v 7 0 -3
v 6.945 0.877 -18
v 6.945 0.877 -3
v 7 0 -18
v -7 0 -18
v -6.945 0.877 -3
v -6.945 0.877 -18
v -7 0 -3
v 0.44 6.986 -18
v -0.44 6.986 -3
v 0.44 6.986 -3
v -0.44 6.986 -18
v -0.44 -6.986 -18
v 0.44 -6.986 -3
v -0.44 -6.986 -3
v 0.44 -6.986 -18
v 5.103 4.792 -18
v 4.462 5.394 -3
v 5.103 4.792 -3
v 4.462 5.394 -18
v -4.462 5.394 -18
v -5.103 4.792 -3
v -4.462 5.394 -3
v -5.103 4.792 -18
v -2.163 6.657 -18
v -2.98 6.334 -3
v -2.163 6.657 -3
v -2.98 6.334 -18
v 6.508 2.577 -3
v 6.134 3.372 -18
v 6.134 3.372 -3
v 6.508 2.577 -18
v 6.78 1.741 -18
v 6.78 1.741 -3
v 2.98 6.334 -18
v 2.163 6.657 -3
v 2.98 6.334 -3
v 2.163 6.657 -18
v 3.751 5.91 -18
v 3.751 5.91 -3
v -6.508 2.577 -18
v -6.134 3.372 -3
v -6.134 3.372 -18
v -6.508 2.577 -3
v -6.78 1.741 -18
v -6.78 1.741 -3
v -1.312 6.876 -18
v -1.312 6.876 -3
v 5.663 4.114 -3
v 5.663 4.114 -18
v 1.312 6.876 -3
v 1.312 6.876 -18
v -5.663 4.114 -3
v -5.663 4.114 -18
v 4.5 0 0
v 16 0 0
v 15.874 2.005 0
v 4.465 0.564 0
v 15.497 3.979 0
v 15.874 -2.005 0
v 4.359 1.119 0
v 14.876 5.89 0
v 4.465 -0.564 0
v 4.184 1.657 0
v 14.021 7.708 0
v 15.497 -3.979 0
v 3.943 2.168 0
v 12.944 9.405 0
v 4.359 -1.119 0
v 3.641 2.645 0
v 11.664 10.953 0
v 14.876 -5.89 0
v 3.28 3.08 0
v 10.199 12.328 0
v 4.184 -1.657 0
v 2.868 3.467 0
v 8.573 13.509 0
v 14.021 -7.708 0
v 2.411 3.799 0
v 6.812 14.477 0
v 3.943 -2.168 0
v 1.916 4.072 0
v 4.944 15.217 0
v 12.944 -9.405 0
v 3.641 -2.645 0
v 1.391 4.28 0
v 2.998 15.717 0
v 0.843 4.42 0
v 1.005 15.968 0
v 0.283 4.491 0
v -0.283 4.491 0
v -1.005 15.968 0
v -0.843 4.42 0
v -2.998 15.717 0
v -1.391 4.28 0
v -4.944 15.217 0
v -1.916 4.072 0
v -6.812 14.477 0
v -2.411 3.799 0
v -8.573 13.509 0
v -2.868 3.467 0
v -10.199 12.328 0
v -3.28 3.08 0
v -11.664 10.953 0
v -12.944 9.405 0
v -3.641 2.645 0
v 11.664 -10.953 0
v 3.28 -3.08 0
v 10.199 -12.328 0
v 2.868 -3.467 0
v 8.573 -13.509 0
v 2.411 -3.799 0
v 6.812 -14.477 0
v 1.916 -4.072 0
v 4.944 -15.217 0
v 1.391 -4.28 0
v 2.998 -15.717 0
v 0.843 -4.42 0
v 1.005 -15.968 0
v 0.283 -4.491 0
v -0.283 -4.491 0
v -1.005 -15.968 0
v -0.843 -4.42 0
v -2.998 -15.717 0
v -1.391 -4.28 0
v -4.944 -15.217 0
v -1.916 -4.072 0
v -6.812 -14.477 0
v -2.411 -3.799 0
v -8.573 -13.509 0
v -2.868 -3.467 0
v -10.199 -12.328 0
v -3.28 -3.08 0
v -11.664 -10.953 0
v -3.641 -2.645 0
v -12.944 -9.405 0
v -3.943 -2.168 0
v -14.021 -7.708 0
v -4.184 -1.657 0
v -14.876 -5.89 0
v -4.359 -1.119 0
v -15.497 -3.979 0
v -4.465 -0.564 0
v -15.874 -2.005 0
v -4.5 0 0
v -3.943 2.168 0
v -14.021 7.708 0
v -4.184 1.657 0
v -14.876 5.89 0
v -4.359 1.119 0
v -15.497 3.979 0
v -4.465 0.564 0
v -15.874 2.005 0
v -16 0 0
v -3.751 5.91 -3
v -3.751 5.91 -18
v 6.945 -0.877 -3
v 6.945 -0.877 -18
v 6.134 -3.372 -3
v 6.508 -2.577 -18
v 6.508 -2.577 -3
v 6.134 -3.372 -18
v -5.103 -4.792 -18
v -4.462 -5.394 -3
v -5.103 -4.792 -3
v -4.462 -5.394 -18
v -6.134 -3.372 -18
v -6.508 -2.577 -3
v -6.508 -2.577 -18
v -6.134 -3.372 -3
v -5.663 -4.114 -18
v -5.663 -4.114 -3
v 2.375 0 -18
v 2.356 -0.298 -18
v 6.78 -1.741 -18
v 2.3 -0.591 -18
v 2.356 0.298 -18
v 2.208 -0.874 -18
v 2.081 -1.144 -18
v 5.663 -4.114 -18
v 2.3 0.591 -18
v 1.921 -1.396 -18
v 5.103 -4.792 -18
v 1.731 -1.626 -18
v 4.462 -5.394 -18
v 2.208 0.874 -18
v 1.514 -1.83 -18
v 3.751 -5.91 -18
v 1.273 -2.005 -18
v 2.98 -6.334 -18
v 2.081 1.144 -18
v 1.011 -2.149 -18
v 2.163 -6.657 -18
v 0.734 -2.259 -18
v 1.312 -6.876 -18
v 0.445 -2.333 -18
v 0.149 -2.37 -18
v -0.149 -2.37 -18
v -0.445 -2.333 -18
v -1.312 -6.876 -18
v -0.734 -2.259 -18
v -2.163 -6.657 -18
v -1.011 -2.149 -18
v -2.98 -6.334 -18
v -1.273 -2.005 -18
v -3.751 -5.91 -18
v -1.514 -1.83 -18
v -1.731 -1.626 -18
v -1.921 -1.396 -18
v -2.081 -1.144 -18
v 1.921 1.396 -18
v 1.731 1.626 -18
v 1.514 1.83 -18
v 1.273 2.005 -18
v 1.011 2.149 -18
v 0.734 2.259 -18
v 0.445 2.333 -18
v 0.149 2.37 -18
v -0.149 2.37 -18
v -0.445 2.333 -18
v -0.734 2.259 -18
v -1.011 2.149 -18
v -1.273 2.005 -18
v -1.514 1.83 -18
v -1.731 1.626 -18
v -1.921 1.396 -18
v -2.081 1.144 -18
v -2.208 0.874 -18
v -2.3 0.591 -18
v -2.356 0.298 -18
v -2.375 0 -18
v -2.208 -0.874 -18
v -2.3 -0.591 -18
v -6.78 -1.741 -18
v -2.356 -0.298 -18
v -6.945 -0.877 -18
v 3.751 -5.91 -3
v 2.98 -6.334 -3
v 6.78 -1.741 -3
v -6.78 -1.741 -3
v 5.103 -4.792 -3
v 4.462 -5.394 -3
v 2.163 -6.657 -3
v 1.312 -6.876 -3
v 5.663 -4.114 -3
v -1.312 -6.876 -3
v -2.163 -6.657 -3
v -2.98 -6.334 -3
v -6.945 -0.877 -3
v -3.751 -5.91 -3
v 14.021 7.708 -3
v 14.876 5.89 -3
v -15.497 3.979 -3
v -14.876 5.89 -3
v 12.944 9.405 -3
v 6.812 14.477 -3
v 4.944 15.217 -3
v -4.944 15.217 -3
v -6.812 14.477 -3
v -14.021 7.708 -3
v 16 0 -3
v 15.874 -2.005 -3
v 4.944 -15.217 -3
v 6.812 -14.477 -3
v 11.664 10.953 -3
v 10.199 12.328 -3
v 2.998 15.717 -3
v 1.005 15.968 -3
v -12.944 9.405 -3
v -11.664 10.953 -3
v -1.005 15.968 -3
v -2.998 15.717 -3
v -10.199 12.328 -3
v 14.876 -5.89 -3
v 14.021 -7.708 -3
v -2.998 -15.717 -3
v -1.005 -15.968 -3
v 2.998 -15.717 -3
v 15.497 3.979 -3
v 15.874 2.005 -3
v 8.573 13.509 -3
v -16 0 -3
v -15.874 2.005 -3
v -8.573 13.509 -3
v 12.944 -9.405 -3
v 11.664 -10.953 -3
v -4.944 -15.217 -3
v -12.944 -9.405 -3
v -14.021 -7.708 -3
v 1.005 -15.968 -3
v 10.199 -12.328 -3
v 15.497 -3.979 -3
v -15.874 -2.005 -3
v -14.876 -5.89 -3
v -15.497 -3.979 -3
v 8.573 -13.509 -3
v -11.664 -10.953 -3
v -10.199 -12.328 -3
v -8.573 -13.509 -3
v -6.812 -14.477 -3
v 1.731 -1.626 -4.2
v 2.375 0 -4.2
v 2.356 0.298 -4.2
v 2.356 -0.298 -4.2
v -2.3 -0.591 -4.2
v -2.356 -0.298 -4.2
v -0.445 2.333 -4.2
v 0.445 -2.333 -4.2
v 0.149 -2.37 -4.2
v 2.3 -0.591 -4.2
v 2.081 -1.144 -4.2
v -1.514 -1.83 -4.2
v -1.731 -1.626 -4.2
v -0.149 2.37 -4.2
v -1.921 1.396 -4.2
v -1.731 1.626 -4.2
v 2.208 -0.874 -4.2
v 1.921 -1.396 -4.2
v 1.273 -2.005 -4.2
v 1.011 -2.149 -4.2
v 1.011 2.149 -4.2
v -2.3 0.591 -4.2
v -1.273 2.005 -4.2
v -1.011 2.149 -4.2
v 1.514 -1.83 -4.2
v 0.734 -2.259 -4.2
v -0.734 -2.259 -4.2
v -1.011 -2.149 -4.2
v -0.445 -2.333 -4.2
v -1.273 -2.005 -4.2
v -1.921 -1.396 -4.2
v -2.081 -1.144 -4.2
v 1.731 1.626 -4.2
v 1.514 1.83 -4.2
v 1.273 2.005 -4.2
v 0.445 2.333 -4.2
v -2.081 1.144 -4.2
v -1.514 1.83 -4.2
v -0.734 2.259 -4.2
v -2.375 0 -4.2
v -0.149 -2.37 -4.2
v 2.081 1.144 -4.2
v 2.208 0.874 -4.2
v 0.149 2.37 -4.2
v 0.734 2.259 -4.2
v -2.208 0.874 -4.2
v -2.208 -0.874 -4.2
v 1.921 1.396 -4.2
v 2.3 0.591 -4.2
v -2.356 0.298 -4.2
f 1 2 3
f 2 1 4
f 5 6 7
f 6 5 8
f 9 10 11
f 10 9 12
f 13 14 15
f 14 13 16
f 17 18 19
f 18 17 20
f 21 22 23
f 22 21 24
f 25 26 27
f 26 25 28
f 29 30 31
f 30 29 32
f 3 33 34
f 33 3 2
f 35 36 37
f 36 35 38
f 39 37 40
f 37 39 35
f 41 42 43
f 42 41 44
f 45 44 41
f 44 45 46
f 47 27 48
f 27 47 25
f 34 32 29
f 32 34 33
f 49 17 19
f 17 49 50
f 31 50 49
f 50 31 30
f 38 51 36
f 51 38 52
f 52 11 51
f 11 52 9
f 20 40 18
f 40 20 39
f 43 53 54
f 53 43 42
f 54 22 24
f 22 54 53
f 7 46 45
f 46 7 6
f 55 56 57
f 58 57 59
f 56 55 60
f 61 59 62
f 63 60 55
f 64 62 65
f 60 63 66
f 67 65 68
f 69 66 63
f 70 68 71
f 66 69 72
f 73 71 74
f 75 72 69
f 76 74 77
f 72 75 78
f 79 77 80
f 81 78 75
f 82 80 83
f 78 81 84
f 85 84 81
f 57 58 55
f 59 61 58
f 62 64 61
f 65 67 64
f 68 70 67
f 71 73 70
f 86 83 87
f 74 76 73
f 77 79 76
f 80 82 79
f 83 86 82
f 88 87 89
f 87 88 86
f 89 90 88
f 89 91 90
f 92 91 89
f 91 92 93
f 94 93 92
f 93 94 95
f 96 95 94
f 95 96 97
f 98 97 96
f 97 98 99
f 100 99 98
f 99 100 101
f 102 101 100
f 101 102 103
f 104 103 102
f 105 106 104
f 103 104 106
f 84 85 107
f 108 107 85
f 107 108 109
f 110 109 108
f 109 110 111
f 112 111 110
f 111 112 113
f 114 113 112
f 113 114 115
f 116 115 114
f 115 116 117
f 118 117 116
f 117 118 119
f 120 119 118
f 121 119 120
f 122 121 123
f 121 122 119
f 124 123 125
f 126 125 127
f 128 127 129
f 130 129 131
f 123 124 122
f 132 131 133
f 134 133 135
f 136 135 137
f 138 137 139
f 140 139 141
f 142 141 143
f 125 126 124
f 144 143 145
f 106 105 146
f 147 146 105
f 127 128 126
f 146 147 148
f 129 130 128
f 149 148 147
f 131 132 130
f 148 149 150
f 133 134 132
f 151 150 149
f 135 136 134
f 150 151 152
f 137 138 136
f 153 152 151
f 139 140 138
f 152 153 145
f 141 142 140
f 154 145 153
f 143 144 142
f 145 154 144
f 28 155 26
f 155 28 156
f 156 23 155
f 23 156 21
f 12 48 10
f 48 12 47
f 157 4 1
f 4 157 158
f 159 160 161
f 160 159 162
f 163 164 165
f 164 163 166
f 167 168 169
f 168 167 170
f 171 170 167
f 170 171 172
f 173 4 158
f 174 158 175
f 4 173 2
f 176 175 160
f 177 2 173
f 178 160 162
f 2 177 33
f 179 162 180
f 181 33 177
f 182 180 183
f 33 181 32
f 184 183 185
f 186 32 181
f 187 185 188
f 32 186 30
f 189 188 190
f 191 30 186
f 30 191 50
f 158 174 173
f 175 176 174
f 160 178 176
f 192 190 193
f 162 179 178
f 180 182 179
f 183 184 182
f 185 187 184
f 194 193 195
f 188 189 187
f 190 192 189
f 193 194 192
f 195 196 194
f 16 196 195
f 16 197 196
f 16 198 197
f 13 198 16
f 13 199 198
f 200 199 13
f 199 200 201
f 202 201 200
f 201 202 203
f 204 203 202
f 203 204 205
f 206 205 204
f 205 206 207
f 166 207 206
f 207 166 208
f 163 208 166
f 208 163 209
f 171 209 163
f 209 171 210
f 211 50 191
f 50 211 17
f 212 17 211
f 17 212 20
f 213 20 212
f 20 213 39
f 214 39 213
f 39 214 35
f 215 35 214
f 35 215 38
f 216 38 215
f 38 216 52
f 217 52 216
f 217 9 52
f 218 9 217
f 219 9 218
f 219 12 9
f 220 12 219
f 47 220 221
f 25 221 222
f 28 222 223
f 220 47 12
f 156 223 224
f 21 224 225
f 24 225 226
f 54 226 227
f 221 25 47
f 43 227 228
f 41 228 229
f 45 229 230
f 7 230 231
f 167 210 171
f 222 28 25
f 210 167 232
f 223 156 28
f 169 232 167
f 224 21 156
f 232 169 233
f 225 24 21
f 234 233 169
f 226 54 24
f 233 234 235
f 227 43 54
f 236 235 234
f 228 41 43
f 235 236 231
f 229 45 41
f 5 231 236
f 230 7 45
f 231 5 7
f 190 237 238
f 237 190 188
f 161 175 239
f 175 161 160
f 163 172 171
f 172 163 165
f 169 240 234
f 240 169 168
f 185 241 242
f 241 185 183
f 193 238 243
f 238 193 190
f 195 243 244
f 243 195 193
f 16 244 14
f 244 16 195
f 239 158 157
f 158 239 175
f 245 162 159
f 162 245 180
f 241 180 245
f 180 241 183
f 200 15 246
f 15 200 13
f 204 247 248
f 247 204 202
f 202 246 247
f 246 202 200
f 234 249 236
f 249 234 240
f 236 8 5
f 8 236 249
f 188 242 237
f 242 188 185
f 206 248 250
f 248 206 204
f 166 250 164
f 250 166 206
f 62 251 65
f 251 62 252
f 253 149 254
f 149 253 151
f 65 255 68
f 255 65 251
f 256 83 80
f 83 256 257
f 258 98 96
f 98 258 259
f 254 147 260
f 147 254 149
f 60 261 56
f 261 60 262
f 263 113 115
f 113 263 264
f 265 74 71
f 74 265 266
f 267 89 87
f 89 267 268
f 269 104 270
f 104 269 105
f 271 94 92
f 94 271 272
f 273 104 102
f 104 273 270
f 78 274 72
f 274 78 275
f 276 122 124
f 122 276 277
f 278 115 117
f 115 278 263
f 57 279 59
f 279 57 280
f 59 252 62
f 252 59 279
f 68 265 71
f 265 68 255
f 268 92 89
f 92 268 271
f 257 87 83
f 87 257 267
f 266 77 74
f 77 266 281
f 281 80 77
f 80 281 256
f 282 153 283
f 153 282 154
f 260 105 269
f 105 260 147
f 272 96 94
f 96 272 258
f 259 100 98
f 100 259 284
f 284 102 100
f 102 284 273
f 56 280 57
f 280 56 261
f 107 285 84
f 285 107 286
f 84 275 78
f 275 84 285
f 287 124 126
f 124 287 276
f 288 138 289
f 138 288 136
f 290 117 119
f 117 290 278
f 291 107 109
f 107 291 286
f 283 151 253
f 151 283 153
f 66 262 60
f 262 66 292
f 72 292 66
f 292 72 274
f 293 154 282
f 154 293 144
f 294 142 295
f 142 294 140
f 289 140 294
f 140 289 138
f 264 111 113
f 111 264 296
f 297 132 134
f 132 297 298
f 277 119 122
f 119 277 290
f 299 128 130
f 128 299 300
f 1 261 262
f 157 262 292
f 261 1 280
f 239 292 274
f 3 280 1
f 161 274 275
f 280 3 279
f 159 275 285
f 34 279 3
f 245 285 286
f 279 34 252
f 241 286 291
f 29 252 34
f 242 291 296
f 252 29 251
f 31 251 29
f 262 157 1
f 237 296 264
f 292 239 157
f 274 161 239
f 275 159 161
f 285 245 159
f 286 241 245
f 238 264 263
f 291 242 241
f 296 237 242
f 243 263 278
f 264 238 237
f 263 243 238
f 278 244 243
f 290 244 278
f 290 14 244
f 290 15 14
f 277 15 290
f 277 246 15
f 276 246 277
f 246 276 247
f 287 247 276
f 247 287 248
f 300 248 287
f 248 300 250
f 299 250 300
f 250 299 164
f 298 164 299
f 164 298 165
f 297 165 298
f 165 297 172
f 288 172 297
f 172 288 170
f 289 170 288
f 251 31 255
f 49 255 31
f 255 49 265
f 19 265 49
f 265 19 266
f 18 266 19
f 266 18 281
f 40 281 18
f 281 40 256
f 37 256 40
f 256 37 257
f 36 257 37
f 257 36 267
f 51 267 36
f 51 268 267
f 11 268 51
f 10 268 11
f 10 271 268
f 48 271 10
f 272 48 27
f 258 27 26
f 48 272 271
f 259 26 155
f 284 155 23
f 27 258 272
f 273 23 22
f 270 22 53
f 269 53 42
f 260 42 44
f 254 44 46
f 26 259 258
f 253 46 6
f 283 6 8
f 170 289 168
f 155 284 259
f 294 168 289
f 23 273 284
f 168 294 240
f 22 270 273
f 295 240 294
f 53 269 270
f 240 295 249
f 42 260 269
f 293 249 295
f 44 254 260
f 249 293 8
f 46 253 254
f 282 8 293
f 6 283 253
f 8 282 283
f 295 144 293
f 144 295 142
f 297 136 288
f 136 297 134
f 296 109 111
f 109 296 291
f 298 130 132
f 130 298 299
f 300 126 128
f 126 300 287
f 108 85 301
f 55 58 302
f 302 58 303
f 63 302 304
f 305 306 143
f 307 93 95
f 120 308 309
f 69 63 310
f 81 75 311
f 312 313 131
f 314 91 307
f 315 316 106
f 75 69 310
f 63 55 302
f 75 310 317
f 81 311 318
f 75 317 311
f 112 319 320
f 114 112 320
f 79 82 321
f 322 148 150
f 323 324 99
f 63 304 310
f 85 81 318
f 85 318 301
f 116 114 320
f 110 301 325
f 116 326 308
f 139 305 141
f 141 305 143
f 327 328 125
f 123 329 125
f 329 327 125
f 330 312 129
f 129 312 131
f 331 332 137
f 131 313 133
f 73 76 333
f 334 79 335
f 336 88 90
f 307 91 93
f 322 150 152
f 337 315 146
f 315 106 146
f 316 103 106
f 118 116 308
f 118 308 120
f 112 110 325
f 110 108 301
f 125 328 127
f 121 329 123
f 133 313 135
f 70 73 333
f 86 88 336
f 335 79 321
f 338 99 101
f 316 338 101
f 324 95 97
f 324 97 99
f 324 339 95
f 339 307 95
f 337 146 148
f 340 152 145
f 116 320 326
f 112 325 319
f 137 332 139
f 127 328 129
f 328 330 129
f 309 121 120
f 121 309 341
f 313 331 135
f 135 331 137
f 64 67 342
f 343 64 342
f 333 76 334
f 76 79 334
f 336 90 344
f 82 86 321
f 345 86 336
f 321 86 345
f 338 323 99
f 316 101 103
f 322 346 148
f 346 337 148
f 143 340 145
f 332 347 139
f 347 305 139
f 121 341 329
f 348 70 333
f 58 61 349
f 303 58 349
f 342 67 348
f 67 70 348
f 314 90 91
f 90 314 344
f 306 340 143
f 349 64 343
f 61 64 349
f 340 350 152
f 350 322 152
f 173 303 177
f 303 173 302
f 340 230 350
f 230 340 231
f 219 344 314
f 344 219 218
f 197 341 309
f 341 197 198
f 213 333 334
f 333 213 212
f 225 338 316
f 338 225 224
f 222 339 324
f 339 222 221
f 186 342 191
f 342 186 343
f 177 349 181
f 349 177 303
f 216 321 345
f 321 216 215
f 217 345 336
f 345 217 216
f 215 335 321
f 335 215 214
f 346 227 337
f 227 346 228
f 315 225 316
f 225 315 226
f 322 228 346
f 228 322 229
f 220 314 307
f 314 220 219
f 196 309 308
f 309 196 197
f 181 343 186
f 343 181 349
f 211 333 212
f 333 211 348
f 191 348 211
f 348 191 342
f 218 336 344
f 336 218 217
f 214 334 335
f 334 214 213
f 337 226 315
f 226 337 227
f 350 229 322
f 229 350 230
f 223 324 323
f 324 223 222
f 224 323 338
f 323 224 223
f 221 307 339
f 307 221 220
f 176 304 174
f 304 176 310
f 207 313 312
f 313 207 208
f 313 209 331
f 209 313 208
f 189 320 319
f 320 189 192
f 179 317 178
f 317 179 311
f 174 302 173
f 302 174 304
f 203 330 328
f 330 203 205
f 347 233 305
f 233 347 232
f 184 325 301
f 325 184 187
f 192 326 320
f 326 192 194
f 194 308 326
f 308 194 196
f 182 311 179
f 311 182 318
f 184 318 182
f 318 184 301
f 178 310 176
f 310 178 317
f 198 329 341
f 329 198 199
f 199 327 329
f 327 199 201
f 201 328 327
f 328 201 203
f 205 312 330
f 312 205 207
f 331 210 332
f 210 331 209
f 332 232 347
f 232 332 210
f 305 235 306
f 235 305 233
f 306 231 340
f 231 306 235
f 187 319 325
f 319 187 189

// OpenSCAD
$fn = 50;


difference() {
	union() {
		translate(v = [0, 0, -18.0000000000]) {
			cylinder(h = 18, r = 7.0000000000);
		}
		translate(v = [0, 0, -3.0000000000]) {
			cylinder(h = 3, r = 16.0000000000);
		}
	}
	union() {
		translate(v = [0, 0, 0]) {
			rotate(a = [0, 0, 0]) {
				difference() {
					union() {
						#translate(v = [0, 0, -18.0000000000]) {
							cylinder(h = 18, r = 2.2500000000);
						}
						#translate(v = [0, 0, -4.2000000000]) {
							cylinder(h = 4.2000000000, r1 = 2.3750000000, r2 = 4.5000000000);
						}
						#translate(v = [0, 0, -18.0000000000]) {
							cylinder(h = 18, r = 2.3750000000);
						}
						#translate(v = [0, 0, -18.0000000000]) {
							cylinder(h = 18, r = 2.2500000000);
						}
					}
					union();
				}
			}
		}
	}
}
